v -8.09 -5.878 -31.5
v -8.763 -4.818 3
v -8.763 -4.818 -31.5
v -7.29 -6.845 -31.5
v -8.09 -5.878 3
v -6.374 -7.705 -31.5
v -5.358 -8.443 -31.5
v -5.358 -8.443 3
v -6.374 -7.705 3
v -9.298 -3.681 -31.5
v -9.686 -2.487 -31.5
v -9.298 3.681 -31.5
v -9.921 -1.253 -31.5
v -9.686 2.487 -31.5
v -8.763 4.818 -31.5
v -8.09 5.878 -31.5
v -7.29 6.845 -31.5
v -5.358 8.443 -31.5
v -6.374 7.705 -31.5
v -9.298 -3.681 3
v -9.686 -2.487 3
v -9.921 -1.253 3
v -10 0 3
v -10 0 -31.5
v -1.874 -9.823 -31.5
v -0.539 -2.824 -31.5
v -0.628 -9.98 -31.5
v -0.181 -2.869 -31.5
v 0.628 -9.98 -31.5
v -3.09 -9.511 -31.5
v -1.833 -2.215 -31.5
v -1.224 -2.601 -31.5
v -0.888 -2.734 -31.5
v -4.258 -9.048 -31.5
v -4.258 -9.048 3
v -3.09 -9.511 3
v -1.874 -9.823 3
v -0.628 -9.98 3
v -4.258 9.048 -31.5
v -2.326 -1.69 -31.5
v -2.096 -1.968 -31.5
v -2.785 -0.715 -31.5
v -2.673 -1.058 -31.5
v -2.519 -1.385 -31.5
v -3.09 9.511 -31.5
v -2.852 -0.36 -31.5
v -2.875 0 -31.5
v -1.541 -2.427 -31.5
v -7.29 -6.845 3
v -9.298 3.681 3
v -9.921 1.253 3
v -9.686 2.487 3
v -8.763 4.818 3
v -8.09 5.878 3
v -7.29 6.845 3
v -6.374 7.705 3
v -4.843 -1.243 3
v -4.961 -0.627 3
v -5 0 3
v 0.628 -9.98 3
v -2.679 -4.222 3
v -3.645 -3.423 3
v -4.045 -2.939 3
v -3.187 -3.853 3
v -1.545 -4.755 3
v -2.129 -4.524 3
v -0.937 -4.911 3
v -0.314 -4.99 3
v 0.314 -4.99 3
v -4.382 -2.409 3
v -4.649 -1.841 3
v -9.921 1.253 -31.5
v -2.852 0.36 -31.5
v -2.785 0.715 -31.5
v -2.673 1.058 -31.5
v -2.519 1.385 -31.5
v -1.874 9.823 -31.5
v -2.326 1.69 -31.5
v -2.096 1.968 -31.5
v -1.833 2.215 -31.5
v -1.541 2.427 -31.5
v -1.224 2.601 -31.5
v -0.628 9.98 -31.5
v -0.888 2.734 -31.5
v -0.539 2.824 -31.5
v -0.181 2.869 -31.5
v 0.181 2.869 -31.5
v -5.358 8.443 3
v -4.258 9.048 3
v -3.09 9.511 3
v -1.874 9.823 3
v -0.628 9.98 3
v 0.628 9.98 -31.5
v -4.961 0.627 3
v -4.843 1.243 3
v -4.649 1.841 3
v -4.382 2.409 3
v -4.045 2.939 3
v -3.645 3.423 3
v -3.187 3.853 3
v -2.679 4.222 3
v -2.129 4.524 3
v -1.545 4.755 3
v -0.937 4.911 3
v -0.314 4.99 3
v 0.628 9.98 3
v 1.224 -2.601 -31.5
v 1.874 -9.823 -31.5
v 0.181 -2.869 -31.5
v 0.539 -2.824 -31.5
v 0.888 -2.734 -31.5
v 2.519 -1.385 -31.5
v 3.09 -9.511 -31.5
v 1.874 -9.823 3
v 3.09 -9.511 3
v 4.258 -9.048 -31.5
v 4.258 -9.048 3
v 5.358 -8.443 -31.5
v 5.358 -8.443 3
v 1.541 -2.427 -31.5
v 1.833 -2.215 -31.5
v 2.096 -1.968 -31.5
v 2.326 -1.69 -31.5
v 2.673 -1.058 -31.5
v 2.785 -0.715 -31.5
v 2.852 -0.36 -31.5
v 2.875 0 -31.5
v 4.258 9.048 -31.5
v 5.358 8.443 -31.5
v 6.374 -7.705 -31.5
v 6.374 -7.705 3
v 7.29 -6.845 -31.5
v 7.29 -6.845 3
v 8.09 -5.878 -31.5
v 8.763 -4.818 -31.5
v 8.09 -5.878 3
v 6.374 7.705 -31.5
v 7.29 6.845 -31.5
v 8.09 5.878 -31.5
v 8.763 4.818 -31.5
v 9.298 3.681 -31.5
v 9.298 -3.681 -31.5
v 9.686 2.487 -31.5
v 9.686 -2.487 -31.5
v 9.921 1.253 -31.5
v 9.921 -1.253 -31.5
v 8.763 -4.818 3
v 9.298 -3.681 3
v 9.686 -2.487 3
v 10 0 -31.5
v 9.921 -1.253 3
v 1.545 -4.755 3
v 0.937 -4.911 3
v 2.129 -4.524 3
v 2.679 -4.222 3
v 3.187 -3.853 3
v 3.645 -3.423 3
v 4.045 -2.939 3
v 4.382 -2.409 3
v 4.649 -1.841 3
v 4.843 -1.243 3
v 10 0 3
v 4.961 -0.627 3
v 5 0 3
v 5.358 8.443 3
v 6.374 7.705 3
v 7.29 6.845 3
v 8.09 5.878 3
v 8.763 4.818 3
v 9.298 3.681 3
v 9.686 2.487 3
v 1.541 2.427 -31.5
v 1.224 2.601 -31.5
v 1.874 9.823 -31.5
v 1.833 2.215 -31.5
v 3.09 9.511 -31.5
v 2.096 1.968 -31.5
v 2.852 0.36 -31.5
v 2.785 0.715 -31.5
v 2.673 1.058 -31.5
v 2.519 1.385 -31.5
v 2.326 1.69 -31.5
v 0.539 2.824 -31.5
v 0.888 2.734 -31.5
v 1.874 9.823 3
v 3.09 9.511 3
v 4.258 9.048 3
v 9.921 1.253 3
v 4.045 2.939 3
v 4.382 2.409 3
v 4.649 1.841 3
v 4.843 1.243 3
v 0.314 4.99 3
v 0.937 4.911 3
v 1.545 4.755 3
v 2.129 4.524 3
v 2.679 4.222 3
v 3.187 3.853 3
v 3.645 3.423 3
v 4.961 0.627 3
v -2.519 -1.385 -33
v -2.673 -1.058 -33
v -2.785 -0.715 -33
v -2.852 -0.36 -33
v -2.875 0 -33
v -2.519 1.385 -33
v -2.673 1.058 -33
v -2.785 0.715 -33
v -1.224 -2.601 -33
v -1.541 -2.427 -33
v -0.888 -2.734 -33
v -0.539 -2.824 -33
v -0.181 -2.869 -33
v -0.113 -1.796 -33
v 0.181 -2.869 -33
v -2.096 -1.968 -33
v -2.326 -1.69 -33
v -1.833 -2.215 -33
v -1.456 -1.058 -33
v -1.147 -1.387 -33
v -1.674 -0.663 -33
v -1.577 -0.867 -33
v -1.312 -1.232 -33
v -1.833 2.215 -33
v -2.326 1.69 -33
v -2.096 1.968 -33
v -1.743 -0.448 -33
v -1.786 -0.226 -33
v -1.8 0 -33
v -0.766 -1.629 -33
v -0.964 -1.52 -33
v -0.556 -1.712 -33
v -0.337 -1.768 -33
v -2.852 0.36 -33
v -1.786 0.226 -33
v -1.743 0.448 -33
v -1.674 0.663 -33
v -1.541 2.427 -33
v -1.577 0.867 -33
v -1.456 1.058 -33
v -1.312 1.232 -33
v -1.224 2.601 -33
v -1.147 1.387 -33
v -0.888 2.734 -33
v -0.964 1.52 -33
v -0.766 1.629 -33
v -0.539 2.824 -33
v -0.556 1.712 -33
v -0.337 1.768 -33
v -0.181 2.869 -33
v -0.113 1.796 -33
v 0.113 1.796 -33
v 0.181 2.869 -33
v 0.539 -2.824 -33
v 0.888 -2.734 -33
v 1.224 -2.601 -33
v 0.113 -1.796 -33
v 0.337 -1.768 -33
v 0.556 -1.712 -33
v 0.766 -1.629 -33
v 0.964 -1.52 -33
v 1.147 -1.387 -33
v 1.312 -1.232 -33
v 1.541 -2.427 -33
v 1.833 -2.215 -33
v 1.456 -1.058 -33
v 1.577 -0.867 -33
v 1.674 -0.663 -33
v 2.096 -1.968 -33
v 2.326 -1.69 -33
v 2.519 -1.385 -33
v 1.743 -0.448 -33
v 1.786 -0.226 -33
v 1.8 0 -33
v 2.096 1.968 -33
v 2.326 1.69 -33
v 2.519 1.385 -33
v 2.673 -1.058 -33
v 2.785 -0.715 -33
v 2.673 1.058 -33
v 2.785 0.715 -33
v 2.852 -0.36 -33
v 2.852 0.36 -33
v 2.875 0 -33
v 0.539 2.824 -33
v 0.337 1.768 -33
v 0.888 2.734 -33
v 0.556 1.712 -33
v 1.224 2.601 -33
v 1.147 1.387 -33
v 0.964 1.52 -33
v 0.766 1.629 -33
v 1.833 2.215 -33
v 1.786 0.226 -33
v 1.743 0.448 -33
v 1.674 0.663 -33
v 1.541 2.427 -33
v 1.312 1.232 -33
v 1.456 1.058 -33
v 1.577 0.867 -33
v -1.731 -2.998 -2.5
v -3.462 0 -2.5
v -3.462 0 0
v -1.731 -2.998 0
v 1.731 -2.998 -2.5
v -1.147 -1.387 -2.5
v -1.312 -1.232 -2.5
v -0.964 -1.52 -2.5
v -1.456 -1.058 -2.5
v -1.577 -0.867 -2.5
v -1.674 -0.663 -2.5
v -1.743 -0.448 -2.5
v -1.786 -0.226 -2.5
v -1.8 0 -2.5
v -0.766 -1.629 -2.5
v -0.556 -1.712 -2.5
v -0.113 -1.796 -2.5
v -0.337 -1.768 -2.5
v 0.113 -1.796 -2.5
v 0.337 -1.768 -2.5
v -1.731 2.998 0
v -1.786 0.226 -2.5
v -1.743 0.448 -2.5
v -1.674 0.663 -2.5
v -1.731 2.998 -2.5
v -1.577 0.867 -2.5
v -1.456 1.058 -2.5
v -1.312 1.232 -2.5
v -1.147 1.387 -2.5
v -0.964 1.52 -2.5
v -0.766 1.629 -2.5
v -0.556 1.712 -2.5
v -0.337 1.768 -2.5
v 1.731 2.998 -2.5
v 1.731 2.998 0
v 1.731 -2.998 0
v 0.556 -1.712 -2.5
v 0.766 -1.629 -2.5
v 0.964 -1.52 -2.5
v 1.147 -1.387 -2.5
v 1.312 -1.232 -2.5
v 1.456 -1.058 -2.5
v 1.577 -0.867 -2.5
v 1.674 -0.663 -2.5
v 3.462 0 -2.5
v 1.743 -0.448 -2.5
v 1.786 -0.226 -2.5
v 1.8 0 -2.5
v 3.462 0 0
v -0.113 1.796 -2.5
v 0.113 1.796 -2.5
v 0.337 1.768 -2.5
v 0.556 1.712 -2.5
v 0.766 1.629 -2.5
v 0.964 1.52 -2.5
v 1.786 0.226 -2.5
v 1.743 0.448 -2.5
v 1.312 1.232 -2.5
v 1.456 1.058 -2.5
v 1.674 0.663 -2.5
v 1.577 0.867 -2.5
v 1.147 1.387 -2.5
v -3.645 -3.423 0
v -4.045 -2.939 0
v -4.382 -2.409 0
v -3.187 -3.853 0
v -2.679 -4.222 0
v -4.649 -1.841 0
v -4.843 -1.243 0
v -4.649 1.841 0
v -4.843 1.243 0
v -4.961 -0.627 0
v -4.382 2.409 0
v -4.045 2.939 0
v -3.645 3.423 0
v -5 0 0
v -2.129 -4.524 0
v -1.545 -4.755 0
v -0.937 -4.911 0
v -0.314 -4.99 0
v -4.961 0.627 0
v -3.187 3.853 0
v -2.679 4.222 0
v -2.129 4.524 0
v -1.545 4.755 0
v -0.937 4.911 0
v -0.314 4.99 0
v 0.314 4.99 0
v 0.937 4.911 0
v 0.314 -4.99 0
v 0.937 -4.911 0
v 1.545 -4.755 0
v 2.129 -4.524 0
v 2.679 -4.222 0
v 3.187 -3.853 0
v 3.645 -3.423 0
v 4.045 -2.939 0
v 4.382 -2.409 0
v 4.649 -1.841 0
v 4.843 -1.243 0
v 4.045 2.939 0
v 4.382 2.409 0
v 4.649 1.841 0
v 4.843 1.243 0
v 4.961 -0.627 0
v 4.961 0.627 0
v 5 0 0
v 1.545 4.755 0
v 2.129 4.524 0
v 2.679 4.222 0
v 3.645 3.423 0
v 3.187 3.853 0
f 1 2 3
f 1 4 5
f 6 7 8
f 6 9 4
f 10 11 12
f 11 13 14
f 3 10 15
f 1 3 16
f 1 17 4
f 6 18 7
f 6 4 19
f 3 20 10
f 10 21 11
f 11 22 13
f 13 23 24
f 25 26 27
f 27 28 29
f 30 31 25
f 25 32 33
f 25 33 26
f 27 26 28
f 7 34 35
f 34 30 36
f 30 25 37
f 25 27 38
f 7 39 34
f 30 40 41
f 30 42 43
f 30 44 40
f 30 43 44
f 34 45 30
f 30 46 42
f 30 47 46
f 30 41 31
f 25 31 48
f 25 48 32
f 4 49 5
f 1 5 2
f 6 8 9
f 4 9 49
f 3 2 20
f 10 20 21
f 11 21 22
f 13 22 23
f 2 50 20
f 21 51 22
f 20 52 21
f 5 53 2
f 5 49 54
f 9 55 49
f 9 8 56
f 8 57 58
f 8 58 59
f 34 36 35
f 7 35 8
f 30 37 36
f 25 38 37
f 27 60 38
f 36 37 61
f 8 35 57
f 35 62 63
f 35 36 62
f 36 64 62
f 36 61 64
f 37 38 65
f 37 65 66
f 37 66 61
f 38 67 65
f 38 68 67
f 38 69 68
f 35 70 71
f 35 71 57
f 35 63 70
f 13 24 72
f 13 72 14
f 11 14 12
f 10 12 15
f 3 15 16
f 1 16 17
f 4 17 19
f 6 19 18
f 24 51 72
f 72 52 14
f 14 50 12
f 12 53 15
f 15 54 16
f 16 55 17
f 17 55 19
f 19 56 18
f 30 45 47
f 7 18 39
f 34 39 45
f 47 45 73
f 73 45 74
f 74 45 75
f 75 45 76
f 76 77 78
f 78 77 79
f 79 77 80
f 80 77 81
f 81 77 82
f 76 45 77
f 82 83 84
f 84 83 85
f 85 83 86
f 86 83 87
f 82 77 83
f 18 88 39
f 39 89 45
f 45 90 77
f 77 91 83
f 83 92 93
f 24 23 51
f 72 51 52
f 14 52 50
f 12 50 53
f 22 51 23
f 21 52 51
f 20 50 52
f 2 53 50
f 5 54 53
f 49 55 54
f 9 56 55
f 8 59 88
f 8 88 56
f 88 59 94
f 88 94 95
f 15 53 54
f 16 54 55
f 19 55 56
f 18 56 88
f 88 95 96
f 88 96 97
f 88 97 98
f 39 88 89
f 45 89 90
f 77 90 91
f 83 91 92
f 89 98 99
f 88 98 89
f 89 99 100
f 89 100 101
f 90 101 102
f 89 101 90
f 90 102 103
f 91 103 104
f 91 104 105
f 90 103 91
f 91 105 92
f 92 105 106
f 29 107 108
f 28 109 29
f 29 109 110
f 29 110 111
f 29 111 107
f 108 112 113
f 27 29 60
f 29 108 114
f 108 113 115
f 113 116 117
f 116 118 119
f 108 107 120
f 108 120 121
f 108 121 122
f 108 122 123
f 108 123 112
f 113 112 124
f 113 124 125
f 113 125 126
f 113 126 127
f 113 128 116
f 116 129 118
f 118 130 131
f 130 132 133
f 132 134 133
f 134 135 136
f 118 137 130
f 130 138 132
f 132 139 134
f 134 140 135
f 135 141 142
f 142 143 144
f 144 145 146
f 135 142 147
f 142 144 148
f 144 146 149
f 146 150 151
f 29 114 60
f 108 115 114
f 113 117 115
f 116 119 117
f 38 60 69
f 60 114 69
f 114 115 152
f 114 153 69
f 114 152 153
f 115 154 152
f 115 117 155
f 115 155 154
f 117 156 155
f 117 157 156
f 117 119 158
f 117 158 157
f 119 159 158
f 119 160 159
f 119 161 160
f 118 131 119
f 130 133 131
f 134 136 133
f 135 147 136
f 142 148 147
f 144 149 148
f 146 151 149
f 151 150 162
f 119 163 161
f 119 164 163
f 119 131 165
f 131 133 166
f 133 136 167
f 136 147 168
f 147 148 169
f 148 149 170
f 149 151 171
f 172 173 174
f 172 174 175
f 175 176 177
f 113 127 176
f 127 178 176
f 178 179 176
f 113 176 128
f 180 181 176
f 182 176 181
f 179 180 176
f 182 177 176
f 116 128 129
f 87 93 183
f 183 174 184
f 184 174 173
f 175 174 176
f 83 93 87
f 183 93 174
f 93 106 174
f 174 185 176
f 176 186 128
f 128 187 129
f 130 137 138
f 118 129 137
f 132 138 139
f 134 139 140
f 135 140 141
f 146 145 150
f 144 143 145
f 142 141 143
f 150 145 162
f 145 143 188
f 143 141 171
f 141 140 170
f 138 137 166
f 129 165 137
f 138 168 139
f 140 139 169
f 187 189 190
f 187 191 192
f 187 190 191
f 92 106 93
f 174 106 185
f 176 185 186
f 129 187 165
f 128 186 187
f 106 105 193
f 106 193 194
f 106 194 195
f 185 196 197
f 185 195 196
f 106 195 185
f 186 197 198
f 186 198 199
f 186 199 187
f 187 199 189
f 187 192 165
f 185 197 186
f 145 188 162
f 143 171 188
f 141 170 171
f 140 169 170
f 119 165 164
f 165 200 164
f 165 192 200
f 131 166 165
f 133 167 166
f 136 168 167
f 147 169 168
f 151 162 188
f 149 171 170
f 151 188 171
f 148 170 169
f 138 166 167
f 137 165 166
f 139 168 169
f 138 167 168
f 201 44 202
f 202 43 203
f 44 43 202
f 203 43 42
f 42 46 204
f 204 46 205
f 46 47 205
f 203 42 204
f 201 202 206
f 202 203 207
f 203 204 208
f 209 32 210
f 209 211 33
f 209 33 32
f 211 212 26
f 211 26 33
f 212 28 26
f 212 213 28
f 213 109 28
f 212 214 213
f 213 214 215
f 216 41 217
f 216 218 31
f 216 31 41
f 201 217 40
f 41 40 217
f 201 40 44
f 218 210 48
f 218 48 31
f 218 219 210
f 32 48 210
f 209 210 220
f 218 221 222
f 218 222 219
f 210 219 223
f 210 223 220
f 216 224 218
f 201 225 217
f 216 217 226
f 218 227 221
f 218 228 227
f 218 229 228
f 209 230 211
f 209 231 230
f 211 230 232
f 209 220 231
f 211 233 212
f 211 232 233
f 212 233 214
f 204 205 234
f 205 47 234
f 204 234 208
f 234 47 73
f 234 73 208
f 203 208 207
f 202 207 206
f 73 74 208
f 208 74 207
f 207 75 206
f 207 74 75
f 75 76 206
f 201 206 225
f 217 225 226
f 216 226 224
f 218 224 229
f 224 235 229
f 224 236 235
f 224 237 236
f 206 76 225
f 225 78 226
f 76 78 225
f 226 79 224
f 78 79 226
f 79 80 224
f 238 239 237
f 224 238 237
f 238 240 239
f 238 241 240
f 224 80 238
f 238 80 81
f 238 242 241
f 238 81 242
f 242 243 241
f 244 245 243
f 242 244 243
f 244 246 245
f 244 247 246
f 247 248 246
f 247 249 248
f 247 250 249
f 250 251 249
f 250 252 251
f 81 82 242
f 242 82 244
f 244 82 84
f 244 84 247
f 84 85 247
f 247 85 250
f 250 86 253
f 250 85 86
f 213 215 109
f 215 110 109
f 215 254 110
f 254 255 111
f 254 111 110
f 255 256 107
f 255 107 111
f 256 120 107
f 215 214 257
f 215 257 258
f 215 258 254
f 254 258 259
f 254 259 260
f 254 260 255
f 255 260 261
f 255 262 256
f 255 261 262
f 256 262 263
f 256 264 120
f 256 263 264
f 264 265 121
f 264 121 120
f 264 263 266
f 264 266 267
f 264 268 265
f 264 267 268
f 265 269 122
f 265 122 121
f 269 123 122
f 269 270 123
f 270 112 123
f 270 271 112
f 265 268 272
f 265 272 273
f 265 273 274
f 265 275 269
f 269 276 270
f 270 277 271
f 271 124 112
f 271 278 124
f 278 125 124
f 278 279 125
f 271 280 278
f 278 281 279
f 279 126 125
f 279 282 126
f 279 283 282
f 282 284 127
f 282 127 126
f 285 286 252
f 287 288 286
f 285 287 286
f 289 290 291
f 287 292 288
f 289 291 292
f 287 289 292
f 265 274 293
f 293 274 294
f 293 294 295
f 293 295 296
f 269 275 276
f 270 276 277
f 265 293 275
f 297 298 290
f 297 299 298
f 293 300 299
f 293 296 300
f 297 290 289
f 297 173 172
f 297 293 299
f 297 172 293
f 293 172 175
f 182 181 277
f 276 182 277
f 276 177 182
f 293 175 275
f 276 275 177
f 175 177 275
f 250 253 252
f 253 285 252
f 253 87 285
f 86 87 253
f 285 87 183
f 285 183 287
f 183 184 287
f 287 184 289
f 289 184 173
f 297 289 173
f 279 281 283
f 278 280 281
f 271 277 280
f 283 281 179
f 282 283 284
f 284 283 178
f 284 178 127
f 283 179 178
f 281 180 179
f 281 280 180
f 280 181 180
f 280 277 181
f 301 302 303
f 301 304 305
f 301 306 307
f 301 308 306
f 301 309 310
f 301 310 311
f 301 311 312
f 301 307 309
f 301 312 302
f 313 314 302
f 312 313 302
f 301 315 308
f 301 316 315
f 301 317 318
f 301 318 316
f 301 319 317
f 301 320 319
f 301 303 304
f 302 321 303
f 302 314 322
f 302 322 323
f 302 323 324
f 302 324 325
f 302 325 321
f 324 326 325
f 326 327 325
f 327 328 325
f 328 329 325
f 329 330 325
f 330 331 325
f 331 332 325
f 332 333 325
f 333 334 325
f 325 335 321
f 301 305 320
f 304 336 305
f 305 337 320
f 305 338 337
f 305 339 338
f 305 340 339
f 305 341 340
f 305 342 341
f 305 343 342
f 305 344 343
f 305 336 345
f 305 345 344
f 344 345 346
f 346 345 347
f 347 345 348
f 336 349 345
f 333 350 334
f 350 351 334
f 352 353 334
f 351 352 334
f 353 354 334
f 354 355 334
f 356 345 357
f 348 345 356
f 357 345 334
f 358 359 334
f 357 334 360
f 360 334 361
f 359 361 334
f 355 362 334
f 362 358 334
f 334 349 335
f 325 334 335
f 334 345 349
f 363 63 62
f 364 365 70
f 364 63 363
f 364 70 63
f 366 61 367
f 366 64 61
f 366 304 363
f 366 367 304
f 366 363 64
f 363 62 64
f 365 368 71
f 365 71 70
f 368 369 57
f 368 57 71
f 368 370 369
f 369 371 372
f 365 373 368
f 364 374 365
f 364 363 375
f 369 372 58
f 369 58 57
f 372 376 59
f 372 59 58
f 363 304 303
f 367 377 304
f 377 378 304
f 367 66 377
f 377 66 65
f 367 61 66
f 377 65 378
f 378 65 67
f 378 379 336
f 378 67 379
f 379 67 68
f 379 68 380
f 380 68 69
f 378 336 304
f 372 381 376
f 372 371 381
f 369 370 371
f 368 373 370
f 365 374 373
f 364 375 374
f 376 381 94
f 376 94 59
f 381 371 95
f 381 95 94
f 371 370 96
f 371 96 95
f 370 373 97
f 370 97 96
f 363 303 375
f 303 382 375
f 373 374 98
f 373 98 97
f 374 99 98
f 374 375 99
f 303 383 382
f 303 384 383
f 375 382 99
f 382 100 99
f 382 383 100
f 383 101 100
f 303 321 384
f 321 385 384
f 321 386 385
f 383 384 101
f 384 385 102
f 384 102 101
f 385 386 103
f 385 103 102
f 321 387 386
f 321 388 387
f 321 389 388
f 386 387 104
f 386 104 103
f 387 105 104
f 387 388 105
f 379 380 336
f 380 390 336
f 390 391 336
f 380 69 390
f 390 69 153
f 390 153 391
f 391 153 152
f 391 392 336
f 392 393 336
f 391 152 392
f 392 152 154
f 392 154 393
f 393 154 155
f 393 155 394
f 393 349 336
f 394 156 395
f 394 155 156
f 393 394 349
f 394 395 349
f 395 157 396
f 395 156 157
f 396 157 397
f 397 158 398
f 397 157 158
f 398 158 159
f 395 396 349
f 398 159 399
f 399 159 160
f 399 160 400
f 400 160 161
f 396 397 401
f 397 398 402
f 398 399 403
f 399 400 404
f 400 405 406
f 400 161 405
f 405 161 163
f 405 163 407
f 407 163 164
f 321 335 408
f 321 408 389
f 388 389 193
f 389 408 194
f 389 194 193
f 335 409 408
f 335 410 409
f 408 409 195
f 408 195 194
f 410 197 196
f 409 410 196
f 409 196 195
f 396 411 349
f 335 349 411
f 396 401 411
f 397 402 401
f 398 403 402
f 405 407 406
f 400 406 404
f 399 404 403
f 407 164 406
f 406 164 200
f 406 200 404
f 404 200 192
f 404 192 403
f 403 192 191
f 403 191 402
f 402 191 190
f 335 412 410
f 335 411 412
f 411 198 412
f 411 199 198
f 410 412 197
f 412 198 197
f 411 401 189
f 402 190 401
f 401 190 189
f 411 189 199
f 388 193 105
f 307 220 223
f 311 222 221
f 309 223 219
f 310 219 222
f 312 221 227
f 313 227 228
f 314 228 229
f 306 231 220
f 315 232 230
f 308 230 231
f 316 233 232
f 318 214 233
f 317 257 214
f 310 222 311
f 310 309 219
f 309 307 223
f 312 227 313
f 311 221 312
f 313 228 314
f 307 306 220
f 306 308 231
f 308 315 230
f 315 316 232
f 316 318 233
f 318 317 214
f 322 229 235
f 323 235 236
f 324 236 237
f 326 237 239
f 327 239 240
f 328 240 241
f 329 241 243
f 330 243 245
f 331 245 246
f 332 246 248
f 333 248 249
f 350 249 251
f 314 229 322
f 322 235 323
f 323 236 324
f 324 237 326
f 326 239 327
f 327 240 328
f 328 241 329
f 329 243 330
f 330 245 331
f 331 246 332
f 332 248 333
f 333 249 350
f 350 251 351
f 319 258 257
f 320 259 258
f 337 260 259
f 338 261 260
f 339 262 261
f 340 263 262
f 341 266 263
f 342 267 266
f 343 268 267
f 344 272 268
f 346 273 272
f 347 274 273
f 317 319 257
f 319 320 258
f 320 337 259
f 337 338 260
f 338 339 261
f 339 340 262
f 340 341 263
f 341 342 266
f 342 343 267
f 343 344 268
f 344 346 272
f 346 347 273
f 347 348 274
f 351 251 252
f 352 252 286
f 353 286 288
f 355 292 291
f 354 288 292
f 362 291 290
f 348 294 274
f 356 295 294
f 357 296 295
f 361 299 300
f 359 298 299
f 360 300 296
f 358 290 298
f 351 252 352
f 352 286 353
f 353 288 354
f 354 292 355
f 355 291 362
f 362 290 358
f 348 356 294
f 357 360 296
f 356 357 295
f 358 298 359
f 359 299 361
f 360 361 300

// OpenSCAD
$fn = 50;

difference() {
	union() {
		translate(v = [0, 0, -31.5]) {
			cylinder(h = 34.5, r = 10.0);
		}
		#translate(v = [0, 0, -33.0]) {
			cylinder(h = 33, r = 2.875);
		}
	}
	union() {
		translate(v = [0, 0, 0]) {
			rotate(a = [0, 0, 0]) {
				difference() {
					union() {
						translate(v = [0, 0, -2.5]) {
							linear_extrude(height = 2.5) {
								polygon(points = [[3.4619999999999997, 0.0], [1.7310000000000003, 2.9981799479017264], [-1.7309999999999992, 2.9981799479017264], [-3.4619999999999997, 4.2397272186481365e-16], [-1.7310000000000014, -2.998179947901726], [1.7309999999999977, -2.9981799479017277]]);
							}
						}
					}
					union();
				}
			}
		}
		#cylinder(h = 3, r = 5.0);
		#translate(v = [0, 0, -100.0]) {
			cylinder(h = 200, r = 1.8);
		}
	}
}
